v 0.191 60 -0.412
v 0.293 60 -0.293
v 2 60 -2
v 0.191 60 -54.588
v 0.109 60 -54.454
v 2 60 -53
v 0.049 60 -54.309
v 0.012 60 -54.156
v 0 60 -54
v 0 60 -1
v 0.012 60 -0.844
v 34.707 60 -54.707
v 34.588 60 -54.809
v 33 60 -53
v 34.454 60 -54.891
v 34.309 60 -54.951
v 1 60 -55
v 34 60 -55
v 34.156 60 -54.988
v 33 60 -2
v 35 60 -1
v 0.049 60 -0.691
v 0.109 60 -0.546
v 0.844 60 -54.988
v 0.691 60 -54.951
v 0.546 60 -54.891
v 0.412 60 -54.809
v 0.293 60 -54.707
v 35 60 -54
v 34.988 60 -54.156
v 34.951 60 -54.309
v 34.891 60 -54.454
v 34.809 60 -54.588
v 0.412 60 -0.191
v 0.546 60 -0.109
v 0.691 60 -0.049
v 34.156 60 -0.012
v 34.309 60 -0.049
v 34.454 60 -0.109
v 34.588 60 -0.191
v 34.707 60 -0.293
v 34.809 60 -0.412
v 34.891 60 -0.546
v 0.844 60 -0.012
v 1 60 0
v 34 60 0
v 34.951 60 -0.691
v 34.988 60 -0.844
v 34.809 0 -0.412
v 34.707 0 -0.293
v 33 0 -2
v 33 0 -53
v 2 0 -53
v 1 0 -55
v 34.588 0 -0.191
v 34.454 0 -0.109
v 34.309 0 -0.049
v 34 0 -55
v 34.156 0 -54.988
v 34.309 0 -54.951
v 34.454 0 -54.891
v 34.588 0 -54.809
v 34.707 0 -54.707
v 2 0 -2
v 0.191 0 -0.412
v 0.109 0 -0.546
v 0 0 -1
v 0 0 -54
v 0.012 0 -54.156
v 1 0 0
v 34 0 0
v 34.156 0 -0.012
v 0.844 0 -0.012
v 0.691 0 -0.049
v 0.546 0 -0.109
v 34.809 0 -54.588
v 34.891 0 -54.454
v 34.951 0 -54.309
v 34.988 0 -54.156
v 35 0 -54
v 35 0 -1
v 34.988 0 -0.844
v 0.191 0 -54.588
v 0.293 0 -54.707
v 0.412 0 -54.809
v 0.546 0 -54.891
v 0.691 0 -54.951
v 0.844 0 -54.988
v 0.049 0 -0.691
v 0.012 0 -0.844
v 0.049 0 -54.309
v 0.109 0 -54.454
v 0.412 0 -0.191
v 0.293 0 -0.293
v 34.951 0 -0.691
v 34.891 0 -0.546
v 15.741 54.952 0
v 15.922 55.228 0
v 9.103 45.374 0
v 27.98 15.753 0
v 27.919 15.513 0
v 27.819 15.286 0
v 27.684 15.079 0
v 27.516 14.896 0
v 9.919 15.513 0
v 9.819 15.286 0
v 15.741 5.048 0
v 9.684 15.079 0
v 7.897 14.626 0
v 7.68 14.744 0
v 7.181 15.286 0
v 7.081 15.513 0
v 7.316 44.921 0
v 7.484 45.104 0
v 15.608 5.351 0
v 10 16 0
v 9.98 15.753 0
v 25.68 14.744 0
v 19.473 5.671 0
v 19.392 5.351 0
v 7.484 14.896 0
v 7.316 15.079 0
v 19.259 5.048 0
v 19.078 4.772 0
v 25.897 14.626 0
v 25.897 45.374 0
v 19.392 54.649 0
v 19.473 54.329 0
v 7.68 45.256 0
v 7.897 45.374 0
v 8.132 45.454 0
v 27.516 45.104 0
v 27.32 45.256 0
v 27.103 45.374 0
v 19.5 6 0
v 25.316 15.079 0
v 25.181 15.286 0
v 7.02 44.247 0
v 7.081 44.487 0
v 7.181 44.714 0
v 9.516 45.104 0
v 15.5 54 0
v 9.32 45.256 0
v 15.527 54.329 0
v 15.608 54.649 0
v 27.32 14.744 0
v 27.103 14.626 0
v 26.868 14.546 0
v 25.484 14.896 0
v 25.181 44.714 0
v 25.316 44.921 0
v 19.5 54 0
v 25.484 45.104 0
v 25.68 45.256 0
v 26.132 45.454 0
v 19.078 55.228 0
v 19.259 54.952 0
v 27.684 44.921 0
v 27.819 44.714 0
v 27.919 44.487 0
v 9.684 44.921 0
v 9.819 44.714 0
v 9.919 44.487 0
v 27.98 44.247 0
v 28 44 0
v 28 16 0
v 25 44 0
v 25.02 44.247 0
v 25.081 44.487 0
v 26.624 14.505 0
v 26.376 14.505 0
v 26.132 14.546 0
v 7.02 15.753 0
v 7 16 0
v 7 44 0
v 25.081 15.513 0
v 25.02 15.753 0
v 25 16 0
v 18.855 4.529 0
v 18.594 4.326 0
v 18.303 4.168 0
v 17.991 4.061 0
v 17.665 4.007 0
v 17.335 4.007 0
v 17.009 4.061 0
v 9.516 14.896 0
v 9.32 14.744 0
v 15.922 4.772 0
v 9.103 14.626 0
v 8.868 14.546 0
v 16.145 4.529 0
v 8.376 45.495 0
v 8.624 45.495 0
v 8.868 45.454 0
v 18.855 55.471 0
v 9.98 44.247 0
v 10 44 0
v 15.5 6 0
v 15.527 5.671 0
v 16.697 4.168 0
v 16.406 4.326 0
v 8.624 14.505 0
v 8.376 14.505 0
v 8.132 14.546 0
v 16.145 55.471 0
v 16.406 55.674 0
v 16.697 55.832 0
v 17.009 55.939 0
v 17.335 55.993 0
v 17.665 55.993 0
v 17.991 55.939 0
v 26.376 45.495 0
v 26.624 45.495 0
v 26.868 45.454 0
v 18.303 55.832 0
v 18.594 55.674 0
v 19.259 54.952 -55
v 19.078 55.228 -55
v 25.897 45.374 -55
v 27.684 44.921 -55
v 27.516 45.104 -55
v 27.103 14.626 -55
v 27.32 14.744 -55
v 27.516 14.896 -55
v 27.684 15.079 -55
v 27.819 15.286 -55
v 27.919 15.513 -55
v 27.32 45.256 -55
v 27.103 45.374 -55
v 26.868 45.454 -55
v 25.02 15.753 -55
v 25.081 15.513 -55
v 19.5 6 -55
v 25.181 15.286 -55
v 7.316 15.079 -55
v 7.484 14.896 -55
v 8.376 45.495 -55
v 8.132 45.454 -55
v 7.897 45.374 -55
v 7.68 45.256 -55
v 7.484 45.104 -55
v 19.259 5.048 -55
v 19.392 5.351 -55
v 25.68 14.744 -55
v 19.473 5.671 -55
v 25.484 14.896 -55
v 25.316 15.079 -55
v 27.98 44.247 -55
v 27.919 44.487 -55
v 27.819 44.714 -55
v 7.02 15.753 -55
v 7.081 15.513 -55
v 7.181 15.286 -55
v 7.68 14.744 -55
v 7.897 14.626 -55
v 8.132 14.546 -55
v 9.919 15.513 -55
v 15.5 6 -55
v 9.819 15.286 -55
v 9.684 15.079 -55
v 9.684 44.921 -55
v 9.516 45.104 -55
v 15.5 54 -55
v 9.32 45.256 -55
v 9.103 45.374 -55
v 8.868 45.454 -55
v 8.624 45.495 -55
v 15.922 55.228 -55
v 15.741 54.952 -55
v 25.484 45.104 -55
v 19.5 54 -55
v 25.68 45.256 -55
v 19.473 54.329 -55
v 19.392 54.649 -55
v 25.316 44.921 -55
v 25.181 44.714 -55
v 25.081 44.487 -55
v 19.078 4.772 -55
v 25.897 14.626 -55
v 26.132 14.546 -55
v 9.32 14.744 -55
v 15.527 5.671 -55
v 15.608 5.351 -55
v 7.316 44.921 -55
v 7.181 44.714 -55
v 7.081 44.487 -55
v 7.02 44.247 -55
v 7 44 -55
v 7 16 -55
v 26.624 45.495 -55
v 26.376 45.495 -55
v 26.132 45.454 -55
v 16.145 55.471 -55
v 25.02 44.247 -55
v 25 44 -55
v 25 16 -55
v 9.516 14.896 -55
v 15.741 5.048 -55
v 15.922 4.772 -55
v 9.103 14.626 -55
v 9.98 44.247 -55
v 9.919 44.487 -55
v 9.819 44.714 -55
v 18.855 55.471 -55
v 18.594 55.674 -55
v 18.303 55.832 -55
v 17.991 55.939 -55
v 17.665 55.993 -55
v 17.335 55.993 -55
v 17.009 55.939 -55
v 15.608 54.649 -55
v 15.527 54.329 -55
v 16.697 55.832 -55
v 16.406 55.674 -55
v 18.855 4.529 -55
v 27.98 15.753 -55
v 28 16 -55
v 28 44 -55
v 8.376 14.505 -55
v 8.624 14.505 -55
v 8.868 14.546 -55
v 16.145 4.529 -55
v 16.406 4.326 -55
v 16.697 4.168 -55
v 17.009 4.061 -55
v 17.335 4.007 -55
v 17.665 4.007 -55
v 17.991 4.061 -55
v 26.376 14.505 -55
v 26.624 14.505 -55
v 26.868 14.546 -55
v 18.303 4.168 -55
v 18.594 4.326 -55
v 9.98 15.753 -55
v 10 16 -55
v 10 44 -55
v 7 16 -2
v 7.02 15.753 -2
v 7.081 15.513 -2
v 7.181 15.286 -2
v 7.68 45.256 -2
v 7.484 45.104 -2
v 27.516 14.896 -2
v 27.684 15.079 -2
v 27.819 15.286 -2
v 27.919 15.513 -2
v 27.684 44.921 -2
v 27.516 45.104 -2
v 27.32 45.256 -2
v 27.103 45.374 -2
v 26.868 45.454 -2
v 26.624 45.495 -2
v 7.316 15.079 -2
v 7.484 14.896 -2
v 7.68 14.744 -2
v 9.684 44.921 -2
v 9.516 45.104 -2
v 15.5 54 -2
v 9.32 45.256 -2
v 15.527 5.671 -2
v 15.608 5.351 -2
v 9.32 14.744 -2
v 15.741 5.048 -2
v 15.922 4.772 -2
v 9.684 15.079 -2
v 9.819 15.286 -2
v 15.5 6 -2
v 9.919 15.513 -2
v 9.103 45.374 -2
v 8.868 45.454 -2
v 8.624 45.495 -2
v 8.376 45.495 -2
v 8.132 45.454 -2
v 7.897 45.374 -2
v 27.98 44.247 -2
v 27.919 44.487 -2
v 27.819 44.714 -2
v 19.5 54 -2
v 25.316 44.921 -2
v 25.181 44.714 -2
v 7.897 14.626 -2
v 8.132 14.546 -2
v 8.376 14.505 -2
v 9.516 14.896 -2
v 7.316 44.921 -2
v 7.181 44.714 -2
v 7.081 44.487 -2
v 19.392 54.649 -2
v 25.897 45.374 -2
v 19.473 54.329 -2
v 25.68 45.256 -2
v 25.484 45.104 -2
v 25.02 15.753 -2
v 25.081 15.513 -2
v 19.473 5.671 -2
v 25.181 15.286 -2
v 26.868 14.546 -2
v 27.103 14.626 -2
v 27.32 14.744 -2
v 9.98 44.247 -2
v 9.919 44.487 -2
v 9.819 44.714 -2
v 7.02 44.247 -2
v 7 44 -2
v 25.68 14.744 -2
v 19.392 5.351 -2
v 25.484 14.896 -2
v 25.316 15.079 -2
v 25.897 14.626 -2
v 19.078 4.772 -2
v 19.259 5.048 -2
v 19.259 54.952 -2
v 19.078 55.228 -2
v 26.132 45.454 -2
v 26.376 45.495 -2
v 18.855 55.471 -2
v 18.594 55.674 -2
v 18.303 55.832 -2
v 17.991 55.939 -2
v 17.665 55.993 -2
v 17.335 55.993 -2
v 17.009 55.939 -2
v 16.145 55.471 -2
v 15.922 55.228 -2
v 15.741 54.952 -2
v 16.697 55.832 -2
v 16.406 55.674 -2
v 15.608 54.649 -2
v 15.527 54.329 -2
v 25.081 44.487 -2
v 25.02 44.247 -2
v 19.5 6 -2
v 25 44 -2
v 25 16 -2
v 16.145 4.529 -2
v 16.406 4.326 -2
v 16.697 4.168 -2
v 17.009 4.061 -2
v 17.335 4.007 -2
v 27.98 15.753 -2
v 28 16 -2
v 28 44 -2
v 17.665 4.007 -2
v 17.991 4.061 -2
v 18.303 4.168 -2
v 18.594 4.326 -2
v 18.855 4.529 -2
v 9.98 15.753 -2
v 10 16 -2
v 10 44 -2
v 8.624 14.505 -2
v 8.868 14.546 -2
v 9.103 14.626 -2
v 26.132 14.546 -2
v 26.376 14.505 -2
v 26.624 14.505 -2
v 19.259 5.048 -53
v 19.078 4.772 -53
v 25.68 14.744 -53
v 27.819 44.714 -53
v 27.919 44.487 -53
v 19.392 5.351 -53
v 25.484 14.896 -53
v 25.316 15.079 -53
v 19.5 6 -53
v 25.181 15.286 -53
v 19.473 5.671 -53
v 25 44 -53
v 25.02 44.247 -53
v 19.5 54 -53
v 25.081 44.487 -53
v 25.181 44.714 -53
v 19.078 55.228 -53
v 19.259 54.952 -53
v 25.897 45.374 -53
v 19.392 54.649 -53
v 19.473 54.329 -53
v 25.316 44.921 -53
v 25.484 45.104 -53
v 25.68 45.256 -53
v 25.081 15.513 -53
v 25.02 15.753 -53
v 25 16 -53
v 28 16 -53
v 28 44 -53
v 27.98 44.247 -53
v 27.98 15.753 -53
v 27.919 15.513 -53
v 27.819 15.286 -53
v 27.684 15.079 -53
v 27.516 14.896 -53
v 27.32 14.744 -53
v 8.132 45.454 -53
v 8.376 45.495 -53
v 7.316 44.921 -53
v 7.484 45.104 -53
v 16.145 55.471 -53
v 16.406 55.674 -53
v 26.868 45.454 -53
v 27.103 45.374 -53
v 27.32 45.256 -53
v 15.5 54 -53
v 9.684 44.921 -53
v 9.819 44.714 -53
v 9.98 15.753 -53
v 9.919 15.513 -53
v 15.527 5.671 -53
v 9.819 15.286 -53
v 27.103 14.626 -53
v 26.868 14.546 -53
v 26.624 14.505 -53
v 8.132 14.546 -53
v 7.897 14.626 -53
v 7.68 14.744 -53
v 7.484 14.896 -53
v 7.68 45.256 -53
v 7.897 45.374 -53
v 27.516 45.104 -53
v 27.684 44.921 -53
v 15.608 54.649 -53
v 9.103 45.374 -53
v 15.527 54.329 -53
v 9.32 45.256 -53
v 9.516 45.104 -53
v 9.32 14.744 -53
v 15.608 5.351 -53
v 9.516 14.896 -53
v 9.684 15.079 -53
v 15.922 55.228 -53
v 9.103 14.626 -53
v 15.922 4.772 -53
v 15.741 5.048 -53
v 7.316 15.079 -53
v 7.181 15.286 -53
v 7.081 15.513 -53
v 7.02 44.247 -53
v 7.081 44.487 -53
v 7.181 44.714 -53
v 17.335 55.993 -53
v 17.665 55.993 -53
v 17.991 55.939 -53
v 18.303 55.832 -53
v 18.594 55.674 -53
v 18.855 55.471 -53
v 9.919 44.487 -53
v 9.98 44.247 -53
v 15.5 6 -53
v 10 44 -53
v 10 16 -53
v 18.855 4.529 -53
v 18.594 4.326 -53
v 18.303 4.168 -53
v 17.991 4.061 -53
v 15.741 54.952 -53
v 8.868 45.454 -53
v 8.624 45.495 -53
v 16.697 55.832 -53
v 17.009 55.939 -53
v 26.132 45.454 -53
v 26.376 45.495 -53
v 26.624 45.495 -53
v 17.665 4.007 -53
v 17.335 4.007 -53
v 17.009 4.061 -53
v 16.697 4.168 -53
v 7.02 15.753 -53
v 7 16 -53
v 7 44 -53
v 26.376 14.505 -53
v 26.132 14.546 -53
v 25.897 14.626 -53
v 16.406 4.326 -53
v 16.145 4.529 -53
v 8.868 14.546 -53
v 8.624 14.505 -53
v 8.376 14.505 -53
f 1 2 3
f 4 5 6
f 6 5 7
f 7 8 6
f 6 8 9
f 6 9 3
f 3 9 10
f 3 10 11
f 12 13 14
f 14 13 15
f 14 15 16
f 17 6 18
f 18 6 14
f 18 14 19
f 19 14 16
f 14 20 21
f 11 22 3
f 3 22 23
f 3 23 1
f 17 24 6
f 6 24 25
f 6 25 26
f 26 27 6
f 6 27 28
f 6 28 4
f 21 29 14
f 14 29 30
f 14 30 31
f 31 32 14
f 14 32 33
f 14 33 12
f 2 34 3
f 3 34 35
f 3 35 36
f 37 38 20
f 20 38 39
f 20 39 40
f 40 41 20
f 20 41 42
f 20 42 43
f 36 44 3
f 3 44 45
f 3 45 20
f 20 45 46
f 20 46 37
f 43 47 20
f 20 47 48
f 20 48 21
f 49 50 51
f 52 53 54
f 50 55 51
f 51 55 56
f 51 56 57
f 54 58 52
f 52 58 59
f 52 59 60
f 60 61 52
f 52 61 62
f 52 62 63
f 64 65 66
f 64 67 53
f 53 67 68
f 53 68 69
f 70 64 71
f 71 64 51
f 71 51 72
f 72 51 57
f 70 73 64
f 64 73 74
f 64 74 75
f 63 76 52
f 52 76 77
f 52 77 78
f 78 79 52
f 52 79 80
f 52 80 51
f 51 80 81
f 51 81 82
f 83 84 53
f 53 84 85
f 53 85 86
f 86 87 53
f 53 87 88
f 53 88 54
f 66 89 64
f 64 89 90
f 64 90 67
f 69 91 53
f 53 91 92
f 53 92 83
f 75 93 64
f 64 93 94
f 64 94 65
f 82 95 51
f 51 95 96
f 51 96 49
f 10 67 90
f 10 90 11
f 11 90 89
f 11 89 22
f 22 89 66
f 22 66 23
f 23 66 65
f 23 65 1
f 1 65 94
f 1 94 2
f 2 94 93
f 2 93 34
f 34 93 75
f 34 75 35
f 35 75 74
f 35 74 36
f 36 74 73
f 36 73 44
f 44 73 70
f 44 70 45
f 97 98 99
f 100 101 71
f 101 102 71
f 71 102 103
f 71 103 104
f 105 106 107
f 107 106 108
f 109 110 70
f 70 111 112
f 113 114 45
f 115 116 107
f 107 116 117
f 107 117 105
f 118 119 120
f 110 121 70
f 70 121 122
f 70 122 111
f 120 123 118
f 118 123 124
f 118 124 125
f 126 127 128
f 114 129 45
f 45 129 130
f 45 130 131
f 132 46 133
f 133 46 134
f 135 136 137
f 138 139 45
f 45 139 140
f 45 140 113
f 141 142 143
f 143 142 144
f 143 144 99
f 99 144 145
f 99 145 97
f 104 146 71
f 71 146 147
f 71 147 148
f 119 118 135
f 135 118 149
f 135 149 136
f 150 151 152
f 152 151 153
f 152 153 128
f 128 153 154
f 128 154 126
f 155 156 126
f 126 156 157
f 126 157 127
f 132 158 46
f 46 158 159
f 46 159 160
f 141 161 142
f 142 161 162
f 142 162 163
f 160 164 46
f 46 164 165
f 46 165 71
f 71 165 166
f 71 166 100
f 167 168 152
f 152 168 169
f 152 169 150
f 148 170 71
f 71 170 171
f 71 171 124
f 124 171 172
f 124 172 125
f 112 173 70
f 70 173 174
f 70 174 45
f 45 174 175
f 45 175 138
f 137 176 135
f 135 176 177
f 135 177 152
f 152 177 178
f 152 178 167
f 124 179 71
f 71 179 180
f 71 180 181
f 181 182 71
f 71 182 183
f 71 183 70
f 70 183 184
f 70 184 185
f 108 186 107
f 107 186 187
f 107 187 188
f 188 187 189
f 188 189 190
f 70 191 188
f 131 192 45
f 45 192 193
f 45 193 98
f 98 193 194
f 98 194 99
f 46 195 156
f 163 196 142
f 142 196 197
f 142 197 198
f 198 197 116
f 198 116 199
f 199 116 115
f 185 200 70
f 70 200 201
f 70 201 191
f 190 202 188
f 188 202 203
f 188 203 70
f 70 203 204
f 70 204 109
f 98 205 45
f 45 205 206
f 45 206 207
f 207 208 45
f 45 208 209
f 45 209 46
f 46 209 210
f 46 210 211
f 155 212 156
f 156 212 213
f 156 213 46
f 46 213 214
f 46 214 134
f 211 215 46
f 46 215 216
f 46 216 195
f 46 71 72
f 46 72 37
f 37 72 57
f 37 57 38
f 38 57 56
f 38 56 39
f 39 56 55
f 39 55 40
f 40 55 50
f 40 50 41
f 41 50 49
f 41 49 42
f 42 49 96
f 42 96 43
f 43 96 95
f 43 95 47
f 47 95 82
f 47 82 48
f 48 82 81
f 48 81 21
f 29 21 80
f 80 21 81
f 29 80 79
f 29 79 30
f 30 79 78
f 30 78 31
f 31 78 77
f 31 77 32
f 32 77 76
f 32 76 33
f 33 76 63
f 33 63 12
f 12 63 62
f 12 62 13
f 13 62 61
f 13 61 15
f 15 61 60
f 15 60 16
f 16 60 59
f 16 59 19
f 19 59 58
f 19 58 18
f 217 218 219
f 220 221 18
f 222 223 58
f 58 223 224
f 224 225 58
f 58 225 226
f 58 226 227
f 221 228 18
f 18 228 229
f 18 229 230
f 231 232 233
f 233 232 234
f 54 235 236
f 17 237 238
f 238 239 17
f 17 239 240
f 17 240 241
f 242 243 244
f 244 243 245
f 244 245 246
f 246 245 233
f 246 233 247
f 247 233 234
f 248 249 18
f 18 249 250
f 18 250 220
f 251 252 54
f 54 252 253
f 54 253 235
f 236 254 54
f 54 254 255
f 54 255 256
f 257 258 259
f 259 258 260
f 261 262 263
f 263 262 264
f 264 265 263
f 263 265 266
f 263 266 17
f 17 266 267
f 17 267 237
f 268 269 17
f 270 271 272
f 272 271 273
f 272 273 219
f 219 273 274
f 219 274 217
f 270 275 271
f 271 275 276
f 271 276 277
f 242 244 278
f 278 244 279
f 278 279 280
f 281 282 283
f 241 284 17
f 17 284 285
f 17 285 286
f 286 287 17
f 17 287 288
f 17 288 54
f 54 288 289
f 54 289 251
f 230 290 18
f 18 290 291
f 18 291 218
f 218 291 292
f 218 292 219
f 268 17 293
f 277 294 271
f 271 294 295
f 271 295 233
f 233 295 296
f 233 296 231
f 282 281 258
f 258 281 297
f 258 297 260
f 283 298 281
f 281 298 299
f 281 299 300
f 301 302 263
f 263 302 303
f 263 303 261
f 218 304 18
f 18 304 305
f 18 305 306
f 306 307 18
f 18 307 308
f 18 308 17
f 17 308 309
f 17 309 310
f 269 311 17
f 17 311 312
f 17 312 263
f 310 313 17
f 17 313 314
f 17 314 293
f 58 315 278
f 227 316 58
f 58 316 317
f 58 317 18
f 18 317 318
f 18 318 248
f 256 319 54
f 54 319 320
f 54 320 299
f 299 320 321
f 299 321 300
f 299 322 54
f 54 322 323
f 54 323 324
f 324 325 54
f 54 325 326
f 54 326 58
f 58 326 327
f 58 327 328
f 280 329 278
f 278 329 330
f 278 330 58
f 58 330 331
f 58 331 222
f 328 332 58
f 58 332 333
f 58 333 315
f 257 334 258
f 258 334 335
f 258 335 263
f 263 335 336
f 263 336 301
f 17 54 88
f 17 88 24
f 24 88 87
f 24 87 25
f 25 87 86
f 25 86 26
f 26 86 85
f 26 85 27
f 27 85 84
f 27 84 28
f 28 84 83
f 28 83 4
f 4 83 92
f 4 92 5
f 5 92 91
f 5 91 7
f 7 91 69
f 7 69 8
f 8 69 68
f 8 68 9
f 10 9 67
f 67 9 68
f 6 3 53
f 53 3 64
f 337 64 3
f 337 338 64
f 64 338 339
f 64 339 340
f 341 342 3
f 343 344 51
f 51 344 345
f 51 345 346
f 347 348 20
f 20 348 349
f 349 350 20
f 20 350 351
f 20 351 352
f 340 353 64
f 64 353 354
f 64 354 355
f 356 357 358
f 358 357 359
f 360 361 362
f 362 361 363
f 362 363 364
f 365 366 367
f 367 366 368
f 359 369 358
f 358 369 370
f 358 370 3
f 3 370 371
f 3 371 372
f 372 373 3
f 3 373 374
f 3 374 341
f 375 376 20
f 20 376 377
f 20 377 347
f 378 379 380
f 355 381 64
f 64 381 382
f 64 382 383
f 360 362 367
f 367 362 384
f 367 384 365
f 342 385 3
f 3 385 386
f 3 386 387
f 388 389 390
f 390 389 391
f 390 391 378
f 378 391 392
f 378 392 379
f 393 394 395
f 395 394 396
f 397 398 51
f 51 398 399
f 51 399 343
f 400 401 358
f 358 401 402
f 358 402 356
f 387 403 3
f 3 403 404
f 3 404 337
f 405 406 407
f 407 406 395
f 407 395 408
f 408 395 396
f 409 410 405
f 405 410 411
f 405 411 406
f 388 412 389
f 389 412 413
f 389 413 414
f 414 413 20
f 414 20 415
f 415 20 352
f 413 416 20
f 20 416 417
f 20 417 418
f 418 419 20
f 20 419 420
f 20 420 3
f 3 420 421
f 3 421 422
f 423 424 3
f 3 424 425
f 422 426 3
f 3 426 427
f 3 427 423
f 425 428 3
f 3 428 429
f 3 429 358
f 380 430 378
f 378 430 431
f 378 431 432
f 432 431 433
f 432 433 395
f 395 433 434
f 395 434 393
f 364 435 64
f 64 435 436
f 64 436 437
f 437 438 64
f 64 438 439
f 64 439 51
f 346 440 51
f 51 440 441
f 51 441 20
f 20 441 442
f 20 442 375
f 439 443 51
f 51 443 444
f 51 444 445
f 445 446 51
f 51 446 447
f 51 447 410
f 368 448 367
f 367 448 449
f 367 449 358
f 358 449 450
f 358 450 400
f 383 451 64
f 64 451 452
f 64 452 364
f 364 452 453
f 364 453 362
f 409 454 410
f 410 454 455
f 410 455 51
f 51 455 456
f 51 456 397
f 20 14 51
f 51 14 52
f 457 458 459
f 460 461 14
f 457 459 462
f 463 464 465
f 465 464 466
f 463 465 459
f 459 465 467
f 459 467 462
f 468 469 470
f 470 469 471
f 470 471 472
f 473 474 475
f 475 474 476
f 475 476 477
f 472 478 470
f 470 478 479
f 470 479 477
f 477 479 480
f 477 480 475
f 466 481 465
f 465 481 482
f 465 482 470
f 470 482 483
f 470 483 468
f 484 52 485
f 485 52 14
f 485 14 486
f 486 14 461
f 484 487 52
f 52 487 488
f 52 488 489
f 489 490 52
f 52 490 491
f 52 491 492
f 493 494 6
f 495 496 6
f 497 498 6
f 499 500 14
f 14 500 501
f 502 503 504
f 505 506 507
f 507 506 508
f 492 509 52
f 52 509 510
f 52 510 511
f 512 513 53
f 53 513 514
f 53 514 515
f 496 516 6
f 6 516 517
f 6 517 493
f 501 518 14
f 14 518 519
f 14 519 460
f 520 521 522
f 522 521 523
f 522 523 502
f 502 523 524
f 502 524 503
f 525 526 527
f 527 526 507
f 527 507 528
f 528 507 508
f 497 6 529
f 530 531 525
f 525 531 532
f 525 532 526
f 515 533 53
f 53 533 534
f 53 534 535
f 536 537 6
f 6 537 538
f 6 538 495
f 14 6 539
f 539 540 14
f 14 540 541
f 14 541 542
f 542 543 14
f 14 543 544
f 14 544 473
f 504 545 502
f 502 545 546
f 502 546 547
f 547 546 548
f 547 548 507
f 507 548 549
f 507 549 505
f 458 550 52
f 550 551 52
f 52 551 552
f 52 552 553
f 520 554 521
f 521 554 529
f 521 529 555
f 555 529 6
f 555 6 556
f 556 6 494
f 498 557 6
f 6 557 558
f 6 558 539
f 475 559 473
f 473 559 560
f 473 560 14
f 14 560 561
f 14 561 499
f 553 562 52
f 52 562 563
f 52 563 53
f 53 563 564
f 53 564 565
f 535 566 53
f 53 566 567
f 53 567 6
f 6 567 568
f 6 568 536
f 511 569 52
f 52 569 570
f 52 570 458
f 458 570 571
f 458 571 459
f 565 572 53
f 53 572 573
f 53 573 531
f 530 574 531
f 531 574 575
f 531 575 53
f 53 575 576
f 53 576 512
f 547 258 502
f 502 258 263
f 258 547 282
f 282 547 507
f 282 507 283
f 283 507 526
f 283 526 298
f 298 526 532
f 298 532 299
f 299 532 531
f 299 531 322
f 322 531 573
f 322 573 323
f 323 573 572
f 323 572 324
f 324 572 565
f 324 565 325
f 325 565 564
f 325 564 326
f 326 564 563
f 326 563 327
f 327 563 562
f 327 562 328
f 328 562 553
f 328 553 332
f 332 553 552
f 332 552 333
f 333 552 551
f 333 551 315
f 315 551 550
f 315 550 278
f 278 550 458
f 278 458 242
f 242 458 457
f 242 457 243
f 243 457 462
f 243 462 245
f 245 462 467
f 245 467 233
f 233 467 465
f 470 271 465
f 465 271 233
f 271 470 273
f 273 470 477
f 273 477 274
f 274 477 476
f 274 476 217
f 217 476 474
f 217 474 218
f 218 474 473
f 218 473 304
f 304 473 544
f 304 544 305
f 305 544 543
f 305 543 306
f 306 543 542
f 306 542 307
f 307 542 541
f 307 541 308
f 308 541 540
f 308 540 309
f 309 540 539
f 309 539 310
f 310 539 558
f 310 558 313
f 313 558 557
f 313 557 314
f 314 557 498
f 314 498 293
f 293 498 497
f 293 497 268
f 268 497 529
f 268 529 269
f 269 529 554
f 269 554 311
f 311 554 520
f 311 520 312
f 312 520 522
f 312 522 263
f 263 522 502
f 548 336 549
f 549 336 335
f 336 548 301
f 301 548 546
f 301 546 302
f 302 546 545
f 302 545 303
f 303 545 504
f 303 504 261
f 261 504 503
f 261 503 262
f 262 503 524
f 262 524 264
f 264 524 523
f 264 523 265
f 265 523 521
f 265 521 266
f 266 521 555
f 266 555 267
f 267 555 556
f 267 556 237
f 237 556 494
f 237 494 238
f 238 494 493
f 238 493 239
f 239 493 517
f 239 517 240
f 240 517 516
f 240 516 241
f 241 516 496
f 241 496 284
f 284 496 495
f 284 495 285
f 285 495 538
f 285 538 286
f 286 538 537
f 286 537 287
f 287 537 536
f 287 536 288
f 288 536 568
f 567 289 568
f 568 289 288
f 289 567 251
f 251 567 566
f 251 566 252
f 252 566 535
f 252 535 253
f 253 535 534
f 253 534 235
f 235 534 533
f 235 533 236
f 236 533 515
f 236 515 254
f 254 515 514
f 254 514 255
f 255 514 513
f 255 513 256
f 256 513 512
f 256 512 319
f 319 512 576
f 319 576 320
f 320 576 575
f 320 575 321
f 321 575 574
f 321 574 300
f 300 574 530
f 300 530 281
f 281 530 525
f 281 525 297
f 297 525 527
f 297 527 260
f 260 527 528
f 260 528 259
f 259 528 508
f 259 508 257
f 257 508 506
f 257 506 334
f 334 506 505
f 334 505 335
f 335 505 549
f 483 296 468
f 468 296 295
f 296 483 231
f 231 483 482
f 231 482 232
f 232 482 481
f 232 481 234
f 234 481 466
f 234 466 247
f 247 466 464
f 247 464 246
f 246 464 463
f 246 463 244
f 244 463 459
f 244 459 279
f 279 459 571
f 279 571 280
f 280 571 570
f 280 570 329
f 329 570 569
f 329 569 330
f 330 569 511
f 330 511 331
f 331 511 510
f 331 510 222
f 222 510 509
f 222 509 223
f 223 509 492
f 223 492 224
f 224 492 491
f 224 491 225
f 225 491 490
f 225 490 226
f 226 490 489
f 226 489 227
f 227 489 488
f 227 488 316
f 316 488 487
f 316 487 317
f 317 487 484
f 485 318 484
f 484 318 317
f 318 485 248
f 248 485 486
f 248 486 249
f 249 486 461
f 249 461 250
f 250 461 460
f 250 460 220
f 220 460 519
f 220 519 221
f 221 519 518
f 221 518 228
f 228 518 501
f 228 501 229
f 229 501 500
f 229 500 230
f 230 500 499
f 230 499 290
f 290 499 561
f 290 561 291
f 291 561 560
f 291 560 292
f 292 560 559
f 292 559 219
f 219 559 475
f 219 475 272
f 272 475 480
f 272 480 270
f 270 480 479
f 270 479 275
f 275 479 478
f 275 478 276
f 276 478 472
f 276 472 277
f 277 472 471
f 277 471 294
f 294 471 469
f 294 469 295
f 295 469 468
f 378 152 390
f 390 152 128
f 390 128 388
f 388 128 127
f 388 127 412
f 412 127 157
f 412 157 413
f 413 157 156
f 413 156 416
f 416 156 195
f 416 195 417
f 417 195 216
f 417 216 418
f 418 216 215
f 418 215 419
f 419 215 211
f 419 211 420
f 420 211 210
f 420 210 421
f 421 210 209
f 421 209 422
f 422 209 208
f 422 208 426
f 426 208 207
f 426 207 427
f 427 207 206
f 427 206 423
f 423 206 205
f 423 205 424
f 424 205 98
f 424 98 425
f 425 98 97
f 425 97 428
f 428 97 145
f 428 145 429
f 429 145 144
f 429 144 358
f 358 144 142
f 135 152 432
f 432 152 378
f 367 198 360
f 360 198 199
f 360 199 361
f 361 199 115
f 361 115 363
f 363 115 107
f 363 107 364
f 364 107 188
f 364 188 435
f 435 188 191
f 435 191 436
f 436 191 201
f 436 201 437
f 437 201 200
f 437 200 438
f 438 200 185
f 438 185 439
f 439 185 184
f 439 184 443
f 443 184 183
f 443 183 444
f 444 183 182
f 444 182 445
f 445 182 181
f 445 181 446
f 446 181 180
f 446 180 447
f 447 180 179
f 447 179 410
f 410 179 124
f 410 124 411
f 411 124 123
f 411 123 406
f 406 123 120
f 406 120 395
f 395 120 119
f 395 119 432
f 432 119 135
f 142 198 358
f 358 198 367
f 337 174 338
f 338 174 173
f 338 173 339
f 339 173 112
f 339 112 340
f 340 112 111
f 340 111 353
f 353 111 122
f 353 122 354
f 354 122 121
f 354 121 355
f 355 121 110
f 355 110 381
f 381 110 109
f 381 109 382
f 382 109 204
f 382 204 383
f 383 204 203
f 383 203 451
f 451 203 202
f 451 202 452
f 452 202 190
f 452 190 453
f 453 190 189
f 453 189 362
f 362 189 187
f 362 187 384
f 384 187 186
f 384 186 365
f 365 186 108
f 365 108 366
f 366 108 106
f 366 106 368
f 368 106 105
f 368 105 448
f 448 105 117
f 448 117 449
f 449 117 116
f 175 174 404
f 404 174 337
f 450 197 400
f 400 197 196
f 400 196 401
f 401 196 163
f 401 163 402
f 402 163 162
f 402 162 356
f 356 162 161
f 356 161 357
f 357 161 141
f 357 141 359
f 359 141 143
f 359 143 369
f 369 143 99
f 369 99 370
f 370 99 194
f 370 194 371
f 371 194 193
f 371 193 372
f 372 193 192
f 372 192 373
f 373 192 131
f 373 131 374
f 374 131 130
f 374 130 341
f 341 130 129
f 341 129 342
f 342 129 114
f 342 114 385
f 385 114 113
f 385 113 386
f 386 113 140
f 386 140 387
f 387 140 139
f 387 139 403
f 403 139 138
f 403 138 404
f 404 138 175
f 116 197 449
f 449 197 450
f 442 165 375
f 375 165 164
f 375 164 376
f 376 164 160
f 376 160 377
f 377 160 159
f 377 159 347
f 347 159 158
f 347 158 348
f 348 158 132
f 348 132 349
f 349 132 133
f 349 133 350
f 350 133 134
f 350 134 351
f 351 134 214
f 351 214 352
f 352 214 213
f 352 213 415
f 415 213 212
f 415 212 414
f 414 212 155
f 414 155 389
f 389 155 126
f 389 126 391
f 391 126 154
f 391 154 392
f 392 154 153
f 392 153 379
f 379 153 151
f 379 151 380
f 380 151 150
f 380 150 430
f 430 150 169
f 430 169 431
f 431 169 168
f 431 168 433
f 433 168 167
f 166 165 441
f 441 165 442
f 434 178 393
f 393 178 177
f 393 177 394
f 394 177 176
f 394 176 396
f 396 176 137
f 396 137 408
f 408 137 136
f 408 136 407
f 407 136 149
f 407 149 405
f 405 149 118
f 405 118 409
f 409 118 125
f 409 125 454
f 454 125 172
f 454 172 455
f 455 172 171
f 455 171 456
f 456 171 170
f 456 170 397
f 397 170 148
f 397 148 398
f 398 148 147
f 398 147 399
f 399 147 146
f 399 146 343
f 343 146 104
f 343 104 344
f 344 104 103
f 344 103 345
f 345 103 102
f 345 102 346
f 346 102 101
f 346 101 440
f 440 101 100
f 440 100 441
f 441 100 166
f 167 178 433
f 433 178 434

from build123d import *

# Parameters (mm, degrees)
SKETCH1_W           = 31
SKETCH1_H           = 51
BOSS_EXTRUDE1_DEPTH = 60
CUT_EXTRUDE1_DEPTH  = 60


with BuildPart() as part:
    # Sketch1 → Boss-Extrude1 (new body)
    with BuildSketch(Plane(origin=(0, 0, 0), x_dir=(1, 0, 0), z_dir=(0, 1, 0))):
        with BuildLine():
            Line((0, 1), (0, 54))
            ThreePointArc((0, 54), (0.292893219, 54.707106781), (1, 55))
            Line((1, 55), (34, 55))
            ThreePointArc((34, 55), (34.707106781, 54.707106781), (35, 54))
            Line((35, 54), (35, 1))
            ThreePointArc((35, 1), (34.707106781, 0.292893219), (34, 0))
            Line((34, 0), (1, 0))
            ThreePointArc((1, 0), (0.292893219, 0.292893219), (0, 1))
        make_face()
        with Locations((17.5, 27.5)):
            Rectangle(SKETCH1_W, SKETCH1_H, mode=Mode.SUBTRACT)
    extrude(amount=BOSS_EXTRUDE1_DEPTH)

    # Sketch3 → Cut-Extrude1 (cut)
    with BuildSketch(Plane.XY):
        with BuildLine():
            Line((15.5, 54), (15.5, 6))
            ThreePointArc((15.5, 6), (17.5, 4), (19.5, 6))
            Line((19.5, 6), (19.5, 54))
            ThreePointArc((19.5, 54), (17.5, 56), (15.5, 54))
        make_face()
        with BuildLine():
            Line((28, 44), (28, 16))
            ThreePointArc((28, 16), (26.5, 14.5), (25, 16))
            Line((25, 16), (25, 44))
            ThreePointArc((25, 44), (26.5, 45.5), (28, 44))
        make_face()
        with BuildLine():
            Line((7, 44), (7, 16))
            ThreePointArc((7, 16), (8.5, 14.5), (10, 16))
            Line((10, 16), (10, 44))
            ThreePointArc((10, 44), (8.5, 45.5), (7, 44))
        make_face()
    extrude(amount=-CUT_EXTRUDE1_DEPTH, mode=Mode.SUBTRACT)


solid = part.part
